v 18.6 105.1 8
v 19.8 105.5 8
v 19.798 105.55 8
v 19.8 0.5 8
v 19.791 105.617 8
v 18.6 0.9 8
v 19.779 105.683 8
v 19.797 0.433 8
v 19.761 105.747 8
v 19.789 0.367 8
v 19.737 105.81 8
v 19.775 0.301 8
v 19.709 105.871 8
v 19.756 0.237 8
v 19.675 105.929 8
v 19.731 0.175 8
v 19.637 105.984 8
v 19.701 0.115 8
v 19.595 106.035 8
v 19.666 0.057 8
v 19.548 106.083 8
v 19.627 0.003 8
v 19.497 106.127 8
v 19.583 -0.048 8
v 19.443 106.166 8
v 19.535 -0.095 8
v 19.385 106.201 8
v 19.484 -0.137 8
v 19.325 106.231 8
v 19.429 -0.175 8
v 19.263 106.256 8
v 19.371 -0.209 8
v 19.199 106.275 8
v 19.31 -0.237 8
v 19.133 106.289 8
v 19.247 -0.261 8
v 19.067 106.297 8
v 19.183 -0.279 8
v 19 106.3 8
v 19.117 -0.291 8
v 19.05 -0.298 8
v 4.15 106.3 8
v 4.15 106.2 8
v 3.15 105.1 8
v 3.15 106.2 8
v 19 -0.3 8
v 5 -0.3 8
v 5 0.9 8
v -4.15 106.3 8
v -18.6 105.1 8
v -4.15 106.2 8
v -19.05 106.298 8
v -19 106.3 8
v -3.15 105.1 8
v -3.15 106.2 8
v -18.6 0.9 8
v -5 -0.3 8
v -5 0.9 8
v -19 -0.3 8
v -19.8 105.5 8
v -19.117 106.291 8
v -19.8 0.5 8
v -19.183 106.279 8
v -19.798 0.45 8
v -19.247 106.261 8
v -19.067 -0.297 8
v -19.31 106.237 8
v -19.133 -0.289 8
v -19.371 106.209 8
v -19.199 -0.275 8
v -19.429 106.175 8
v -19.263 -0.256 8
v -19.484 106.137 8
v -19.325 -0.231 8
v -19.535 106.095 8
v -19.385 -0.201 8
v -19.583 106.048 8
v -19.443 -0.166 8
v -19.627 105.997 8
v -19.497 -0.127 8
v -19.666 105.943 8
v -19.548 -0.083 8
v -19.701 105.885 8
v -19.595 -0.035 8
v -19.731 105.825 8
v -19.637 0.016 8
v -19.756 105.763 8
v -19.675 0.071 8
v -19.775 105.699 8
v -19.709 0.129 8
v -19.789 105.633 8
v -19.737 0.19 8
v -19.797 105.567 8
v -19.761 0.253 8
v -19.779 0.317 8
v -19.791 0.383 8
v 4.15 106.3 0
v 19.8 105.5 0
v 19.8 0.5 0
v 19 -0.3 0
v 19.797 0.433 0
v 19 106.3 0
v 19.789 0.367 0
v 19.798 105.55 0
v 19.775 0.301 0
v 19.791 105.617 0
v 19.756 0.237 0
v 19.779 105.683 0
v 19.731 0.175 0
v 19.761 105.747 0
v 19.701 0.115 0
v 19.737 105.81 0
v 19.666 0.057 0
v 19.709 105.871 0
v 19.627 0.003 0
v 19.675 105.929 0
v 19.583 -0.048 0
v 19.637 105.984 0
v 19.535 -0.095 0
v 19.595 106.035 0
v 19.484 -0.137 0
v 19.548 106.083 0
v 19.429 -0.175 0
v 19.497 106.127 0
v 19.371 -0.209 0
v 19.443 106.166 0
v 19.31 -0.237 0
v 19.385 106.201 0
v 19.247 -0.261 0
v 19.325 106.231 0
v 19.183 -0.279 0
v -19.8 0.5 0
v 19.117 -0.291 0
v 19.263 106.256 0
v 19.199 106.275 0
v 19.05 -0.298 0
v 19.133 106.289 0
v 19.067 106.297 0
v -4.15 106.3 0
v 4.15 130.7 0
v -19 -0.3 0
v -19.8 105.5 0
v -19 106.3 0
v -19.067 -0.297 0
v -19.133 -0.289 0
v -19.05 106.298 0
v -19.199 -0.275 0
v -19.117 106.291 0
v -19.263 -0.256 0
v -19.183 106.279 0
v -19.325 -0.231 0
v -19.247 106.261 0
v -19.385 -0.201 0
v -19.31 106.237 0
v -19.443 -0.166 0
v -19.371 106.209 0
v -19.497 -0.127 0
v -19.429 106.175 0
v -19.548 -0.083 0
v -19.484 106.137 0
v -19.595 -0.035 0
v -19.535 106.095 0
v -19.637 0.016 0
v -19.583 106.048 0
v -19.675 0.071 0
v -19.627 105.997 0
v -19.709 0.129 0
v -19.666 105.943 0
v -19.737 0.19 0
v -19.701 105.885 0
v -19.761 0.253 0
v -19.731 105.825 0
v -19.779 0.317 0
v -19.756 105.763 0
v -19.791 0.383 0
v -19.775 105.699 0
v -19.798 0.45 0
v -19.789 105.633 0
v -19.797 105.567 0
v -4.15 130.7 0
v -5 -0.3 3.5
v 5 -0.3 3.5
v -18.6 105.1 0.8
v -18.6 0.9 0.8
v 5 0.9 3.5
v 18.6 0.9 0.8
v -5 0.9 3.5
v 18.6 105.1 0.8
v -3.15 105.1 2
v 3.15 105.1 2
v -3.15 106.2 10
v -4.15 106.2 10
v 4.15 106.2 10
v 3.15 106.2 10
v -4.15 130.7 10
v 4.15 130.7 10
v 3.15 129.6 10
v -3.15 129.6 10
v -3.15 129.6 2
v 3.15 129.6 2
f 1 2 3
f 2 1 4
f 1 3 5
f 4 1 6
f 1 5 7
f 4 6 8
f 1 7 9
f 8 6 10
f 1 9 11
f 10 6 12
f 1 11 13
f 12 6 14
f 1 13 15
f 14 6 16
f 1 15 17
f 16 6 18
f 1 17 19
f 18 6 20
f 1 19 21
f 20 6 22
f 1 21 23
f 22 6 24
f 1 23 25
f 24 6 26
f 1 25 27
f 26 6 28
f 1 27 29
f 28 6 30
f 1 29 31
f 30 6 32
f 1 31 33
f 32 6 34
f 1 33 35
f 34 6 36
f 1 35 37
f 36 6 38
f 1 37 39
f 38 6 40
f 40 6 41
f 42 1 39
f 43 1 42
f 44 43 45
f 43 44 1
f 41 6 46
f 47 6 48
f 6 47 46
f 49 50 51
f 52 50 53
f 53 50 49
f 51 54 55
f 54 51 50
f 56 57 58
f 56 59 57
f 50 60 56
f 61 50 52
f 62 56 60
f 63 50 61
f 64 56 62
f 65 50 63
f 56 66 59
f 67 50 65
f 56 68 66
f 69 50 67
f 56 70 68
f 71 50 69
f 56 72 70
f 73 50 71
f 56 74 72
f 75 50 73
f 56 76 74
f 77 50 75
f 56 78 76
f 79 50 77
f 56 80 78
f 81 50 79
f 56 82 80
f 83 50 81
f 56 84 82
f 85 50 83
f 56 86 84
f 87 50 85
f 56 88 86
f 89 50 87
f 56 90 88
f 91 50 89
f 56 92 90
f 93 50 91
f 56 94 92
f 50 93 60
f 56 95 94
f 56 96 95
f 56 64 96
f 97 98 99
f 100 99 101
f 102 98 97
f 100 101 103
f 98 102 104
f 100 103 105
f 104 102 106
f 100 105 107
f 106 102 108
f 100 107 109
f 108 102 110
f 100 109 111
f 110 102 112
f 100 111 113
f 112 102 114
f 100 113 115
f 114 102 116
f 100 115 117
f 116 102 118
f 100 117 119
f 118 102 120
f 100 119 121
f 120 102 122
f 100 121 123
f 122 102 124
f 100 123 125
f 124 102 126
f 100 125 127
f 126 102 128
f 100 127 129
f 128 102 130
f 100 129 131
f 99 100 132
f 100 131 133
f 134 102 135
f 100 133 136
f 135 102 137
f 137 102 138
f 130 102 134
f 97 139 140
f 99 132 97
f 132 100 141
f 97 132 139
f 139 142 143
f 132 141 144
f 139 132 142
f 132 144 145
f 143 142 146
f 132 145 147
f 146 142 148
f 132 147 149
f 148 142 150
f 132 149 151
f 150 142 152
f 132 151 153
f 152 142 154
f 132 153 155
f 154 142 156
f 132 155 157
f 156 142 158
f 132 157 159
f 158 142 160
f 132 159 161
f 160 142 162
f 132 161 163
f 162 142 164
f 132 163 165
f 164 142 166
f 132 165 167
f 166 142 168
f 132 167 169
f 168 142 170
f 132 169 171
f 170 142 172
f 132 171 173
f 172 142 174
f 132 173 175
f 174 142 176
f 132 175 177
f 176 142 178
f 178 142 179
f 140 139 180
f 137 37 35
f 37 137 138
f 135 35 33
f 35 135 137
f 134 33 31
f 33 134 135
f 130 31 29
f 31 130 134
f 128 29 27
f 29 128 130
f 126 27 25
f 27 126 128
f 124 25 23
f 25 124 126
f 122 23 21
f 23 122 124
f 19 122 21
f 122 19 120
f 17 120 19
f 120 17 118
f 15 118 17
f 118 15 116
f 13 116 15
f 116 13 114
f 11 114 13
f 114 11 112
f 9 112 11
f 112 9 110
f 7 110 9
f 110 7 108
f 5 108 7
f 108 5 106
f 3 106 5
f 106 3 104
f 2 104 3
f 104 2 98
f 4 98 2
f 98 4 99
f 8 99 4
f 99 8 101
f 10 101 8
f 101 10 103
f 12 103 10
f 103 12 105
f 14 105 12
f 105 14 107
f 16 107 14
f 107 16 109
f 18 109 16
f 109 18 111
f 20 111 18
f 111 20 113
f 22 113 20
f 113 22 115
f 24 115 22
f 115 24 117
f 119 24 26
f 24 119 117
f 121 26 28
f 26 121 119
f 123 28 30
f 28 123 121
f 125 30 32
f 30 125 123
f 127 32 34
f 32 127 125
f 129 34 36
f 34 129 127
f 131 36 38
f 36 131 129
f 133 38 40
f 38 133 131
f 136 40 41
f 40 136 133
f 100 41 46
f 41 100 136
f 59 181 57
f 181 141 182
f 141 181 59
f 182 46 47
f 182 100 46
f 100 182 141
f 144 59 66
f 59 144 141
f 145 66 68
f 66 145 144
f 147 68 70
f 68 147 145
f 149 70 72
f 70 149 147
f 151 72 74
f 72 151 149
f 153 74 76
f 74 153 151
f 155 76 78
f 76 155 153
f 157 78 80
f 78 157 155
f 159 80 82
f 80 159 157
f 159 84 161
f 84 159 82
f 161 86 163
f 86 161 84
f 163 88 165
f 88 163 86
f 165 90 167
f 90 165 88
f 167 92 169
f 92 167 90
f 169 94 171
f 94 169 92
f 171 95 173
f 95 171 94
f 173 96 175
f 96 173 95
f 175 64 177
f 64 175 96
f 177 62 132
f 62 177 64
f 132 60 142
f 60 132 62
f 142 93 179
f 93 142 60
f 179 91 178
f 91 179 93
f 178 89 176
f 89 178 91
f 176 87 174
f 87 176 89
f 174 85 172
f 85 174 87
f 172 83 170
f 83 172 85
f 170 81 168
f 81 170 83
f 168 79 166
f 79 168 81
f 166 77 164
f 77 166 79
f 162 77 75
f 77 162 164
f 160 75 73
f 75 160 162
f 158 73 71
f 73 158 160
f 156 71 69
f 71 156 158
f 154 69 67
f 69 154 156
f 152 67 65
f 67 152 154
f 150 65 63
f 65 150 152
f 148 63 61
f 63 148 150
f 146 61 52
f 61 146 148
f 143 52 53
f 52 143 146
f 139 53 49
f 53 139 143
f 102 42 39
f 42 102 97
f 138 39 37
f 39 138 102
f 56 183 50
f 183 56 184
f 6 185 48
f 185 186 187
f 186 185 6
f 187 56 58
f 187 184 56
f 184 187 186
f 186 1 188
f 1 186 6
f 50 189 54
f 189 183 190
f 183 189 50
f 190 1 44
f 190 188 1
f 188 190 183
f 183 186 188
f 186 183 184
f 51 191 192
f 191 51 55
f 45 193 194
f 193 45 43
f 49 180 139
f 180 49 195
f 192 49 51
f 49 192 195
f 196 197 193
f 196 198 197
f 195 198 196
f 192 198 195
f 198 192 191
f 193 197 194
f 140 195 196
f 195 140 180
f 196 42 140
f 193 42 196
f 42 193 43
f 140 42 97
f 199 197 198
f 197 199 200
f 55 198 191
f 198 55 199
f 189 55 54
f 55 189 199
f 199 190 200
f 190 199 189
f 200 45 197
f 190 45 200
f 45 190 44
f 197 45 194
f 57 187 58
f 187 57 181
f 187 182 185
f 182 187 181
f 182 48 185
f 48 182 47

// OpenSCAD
$fn=75;

BOX_W = 38;
BOX_L = 105;
BOX_H = 8.0;

WALL = 0.8;

CORNER_RADIUS = 0.8;

MIC_OUTSIDE_WIDTH=8.3;
MIC_OUTSIDE_HEIGHT=10.0;

MIC_INSIDE_WIDTH=6.3;
MIC_LENGTH=24.5;

MIC_OFFSET_X = 0;
MIC_OFFSET_Y = -33.4;
MIC_OFFSET_Z = 0;

VENT_OFFSET = -4.5;
VENT_L = 19.0;
VENT_R = -19.0;

module roundedRectangle(width, length, radius) {
    difference() {
        offset(r=radius) square([width, length], center=true);
        offset(r=radius - WALL) square([width - WALL, length - WALL], center=true);
    }
}

module mainLid() {
    // sides of box
    linear_extrude(BOX_H)
    roundedRectangle(BOX_W, BOX_L, CORNER_RADIUS);
    // base of box
    translate([0, 0, BOX_H - WALL]) {
        linear_extrude(WALL) square([BOX_W, BOX_L], center=true);
    }
}

module micBox() {
        translate([0, -53.2, 3])
        rotate([90, 0, 0])
        linear_extrude(MIC_LENGTH) square([MIC_OUTSIDE_WIDTH, MIC_OUTSIDE_HEIGHT], center=true);
    }
//}

module vent(x, y, vent_offset) {
    translate([x, y, BOX_H + vent_offset]) {
        rotate([90, 0, 90]) {
            cylinder(h=3.0, d=2.0, center=true);
        }
    }
}

module cutouts() {
    translate([MIC_OFFSET_X, MIC_OFFSET_Y, MIC_OFFSET_Z]) {
        // Inside mic channel
        translate([0, +110, BOX_H-18])
        rotate([90, 0, 0])
        linear_extrude(MIC_LENGTH+4.1) square([MIC_INSIDE_WIDTH, MIC_OUTSIDE_HEIGHT], center=true);
        
        // Mic lid clearance at mic box opening
        //translate([0, -17, BOX_H-0.10])
        //rotate([90, 0, 0])
        //linear_extrude(2.0) square([9, 2.2], center=true);
    }

    // Cable exit
    translate([0, -51.0, BOX_H-18.5])
    rotate([90, 0, 0])
    linear_extrude(3.0) square([10, 6], center=true);
}

// put it all together
translate([0, 53, 17]) { // offset model to start on 0, 0, 0
    difference() {
        rotate([180, 0, 0]) { // Flipping the entire object along the X axis
            union() {
                translate([0, 0, 9.0]) { 
                    mainLid();
                    micBox();
                }
            }
        }
        cutouts();
    }
}
